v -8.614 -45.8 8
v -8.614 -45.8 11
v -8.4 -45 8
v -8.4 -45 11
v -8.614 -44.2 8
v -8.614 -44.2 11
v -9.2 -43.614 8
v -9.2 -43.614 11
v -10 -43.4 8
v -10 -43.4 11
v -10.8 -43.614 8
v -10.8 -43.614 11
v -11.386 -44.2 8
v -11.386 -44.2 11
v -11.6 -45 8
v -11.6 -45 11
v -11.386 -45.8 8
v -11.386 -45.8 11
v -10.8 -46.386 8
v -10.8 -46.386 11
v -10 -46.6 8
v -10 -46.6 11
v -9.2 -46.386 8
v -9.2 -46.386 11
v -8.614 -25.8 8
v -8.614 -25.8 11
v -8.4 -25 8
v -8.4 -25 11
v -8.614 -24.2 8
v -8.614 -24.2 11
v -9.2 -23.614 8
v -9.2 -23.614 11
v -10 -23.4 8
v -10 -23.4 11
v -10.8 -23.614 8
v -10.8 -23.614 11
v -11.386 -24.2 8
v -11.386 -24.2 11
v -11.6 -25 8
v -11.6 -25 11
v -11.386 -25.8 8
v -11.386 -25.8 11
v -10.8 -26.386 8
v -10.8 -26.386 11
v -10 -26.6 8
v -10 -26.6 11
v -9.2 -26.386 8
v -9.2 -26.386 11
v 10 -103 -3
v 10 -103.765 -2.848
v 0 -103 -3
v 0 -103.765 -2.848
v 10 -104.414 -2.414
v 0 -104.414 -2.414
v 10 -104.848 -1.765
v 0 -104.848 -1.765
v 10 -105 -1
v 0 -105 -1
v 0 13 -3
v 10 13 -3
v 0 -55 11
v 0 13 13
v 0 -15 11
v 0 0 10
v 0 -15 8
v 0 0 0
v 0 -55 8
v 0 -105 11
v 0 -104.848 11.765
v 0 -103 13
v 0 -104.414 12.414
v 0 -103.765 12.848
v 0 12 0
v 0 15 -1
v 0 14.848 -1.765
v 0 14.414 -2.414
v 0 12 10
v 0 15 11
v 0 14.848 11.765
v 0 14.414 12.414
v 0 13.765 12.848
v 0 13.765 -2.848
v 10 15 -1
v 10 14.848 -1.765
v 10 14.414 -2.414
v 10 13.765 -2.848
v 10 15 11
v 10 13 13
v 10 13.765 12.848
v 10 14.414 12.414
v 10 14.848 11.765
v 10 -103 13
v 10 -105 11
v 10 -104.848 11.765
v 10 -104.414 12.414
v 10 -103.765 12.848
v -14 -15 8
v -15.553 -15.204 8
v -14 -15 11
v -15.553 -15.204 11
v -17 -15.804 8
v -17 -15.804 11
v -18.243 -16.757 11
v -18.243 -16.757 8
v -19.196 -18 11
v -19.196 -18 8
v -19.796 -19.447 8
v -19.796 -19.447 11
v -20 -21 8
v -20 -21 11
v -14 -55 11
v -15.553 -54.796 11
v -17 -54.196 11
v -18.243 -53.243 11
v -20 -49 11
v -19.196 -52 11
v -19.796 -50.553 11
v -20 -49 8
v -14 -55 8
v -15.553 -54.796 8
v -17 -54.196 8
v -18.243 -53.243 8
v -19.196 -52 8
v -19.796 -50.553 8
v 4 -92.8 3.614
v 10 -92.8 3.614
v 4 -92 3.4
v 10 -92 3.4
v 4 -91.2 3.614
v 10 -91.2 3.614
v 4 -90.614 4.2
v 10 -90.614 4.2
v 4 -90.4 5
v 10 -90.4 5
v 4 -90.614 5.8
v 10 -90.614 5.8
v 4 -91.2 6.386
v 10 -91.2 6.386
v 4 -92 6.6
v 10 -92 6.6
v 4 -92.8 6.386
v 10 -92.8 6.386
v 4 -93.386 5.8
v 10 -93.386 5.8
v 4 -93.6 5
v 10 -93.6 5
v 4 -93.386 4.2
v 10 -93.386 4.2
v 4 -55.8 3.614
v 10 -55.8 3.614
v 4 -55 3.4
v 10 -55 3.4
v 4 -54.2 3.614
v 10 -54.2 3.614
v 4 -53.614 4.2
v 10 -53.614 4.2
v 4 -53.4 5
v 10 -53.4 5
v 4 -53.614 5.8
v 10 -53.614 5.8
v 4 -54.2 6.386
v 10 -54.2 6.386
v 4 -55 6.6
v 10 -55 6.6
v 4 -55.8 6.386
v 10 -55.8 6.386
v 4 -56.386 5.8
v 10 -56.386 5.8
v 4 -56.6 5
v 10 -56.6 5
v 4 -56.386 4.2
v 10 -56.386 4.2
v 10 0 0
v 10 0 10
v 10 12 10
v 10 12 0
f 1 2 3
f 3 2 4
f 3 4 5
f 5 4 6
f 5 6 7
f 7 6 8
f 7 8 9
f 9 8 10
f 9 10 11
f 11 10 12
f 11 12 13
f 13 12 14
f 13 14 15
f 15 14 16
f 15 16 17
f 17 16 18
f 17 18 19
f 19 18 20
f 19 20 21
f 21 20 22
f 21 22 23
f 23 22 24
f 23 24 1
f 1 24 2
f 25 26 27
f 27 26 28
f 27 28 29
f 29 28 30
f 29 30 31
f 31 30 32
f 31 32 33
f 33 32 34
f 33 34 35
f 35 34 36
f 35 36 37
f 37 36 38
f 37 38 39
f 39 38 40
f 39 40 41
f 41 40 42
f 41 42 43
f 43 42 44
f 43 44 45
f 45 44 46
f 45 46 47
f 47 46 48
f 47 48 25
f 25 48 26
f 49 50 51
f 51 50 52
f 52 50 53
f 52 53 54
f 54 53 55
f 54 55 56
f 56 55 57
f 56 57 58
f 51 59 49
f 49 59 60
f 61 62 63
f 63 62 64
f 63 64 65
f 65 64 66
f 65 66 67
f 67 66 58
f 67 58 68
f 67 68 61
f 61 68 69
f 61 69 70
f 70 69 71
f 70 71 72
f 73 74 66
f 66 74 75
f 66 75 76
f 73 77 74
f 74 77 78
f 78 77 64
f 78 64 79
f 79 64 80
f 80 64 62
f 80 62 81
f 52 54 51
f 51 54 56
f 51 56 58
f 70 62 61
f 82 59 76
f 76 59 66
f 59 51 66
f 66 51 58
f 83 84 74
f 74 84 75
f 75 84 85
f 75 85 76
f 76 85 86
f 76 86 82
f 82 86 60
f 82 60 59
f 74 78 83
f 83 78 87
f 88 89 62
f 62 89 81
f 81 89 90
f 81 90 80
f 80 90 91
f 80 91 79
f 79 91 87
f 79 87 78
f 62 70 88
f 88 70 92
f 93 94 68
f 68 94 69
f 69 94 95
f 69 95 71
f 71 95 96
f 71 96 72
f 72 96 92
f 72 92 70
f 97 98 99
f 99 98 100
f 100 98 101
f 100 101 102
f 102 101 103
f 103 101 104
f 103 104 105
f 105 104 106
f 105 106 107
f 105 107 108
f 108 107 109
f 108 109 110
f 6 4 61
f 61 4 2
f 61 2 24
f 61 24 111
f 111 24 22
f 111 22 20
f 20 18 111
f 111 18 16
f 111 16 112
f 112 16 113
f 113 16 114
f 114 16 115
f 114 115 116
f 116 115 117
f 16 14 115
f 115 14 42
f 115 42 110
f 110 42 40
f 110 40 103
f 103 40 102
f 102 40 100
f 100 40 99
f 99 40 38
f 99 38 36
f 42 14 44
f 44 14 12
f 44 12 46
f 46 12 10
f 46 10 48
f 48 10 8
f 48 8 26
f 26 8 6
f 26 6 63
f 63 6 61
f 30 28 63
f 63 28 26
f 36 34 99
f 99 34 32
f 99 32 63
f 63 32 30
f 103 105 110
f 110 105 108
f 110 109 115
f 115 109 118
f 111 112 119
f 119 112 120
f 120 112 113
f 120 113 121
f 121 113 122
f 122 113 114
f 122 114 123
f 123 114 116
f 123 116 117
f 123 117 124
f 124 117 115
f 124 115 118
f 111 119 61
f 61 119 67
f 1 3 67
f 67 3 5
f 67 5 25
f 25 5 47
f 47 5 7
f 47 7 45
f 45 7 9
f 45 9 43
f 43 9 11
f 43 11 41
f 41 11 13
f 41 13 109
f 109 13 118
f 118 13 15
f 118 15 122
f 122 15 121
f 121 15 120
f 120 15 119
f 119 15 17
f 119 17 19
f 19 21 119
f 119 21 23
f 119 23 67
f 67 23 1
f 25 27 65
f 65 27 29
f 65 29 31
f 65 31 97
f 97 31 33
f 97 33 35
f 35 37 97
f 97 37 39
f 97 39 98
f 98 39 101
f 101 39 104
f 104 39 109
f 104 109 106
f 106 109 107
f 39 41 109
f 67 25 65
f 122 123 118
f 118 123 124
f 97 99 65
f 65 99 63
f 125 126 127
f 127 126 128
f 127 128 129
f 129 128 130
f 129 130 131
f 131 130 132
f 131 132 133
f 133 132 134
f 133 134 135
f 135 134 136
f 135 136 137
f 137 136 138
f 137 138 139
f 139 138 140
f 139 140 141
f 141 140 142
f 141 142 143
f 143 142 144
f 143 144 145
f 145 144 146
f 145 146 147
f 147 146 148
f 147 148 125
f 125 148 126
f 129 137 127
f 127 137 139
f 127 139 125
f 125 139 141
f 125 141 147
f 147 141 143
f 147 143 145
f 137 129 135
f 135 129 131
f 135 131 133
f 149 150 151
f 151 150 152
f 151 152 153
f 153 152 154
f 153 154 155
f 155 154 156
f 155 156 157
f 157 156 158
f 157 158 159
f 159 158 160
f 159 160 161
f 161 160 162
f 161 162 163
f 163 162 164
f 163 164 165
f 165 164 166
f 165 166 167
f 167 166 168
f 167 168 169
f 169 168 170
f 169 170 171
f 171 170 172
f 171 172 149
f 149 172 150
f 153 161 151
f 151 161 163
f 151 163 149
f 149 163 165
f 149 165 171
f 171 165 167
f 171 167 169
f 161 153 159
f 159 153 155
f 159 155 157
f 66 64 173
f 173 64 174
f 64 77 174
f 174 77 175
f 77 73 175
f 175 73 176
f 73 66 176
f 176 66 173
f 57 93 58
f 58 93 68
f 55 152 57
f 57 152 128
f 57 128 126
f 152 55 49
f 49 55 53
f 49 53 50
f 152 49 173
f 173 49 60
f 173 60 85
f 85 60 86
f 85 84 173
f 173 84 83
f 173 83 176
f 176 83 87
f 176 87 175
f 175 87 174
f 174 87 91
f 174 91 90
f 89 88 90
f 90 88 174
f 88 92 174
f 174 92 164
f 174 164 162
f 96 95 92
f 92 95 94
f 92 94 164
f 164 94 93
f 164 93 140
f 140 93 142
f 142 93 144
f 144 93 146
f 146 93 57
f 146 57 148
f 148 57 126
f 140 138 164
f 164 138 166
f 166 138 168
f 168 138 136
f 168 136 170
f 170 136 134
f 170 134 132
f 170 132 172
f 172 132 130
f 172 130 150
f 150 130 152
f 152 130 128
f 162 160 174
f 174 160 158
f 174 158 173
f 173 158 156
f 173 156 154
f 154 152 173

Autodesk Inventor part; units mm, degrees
ref_plane "YZ Plane" through (0, 0, 0) normal (1, 0, 0) x (0, 1, 0)
ref_plane "XZ Plane" through (0, 0, 0) normal (0, 1, 0) x (-1, 0, 0)
ref_plane "XY Plane" through (0, 0, 0) normal (0, 0, 1) x (1, 0, 0)
sketch "Sketch1" plane through (0, 0, 0) normal (1, 0, 0) x (0, 1, 0)
  line L0 (0, 0) -> (12, 0)
  line L1 (12, 0) -> (12, 10)
  line L2 (12, 10) -> (0, 10)
  line L3 (0, 10) -> (0, 0)
  line L4 (-105, -3) -> (15, -3)
  line L5 (15, -3) -> (15, 13)
  line L6 (15, 13) -> (-105, 13)
  line L7 (-105, 13) -> (-105, -3)
  point P0 (0, 5)
  dimension "d0" = 12
  dimension "d1" = 10
  dimension "d4" = 16
  dimension "d5" = 3
  dimension "d6" = 120
  dimension "d7" = 3
extrude "Extrusion1" add sketch "Sketch1" along normal blind 10
sketch "Sketch2" plane through (10, 0, 0) normal (1, 0, 0) x (0, 0, -1)
  circle A0 centre (-5, -92) radius 1.6
  circle A1 centre (-5, -55) radius 1.6
  line L0 (0, 0) -> (-10, 0) projected
  line L1 (3, -105) -> (3, 15) projected
  dimension "d14" = 3.2
  dimension "d15" = 3.2
  dimension "d16" = 55
  dimension "d17" = 37
  dimension "d18" = 8
  dimension "d19" = 8
extrude "Extrusion2" cut sketch "Sketch2" against normal blind 6
sketch "Sketch3" plane through (0, 0, 0) normal (-1, 0, 0) x (0, 0, 1)
  line L0 (10, 0) -> (0, 0) construction
  line L1 (8, -15) -> (11, -15)
  line L2 (11, -15) -> (11, -55)
  line L3 (11, -55) -> (8, -55)
  line L4 (8, -55) -> (8, -15)
  line L5 (13, 15) -> (13, -105) projected
  line L6 (-3, 15) -> (13, 15) projected
  dimension "d22" = 3
  dimension "d23" = 40
  dimension "d24" = 2
  dimension "d25" = 30
extrude "Extrusion4" add sketch "Sketch3" along normal blind 20
fillet "Fillet2" radius 6 2 edges at (-20, -55, 9.5) (-20, -15, 9.5)
sketch "Sketch4" plane through (0, -55, 11) normal (0, 0, 1) x (1, 0, 0)
  circle A0 centre (-10, 10) radius 1.6
  circle A1 centre (-10, 30) radius 1.6
  line L0 (0, 70) -> (0, -50) projected
  line L1 (0, 0) -> (-14, 0) projected
  line L2 (0, 40) -> (-14, 40) projected
  point P0 (0, 55)
  dimension "d35" = 3.2
  dimension "d36" = 3.2
  dimension "d37" = 10
  dimension "d38" = 10
  dimension "d39" = 10
  dimension "d40" = 10
fillet "Fillet3" radius 2 4 edges at (5, -105, 13) (5, 15, 13) (5, 15, -3) (5, -105, -3)
extrude "Extrusion5" cut sketch "Sketch4" against normal through all
equation "\"d5\" = -0.5 * d1 + 0.5 * d4"
equation "\"d7\" = d5"
equation "\"d19\" = d18"
equation "\"d38\" = d37"
equation "\"d40\" = d39"
properties part number "Wheel IR Holder LH"
